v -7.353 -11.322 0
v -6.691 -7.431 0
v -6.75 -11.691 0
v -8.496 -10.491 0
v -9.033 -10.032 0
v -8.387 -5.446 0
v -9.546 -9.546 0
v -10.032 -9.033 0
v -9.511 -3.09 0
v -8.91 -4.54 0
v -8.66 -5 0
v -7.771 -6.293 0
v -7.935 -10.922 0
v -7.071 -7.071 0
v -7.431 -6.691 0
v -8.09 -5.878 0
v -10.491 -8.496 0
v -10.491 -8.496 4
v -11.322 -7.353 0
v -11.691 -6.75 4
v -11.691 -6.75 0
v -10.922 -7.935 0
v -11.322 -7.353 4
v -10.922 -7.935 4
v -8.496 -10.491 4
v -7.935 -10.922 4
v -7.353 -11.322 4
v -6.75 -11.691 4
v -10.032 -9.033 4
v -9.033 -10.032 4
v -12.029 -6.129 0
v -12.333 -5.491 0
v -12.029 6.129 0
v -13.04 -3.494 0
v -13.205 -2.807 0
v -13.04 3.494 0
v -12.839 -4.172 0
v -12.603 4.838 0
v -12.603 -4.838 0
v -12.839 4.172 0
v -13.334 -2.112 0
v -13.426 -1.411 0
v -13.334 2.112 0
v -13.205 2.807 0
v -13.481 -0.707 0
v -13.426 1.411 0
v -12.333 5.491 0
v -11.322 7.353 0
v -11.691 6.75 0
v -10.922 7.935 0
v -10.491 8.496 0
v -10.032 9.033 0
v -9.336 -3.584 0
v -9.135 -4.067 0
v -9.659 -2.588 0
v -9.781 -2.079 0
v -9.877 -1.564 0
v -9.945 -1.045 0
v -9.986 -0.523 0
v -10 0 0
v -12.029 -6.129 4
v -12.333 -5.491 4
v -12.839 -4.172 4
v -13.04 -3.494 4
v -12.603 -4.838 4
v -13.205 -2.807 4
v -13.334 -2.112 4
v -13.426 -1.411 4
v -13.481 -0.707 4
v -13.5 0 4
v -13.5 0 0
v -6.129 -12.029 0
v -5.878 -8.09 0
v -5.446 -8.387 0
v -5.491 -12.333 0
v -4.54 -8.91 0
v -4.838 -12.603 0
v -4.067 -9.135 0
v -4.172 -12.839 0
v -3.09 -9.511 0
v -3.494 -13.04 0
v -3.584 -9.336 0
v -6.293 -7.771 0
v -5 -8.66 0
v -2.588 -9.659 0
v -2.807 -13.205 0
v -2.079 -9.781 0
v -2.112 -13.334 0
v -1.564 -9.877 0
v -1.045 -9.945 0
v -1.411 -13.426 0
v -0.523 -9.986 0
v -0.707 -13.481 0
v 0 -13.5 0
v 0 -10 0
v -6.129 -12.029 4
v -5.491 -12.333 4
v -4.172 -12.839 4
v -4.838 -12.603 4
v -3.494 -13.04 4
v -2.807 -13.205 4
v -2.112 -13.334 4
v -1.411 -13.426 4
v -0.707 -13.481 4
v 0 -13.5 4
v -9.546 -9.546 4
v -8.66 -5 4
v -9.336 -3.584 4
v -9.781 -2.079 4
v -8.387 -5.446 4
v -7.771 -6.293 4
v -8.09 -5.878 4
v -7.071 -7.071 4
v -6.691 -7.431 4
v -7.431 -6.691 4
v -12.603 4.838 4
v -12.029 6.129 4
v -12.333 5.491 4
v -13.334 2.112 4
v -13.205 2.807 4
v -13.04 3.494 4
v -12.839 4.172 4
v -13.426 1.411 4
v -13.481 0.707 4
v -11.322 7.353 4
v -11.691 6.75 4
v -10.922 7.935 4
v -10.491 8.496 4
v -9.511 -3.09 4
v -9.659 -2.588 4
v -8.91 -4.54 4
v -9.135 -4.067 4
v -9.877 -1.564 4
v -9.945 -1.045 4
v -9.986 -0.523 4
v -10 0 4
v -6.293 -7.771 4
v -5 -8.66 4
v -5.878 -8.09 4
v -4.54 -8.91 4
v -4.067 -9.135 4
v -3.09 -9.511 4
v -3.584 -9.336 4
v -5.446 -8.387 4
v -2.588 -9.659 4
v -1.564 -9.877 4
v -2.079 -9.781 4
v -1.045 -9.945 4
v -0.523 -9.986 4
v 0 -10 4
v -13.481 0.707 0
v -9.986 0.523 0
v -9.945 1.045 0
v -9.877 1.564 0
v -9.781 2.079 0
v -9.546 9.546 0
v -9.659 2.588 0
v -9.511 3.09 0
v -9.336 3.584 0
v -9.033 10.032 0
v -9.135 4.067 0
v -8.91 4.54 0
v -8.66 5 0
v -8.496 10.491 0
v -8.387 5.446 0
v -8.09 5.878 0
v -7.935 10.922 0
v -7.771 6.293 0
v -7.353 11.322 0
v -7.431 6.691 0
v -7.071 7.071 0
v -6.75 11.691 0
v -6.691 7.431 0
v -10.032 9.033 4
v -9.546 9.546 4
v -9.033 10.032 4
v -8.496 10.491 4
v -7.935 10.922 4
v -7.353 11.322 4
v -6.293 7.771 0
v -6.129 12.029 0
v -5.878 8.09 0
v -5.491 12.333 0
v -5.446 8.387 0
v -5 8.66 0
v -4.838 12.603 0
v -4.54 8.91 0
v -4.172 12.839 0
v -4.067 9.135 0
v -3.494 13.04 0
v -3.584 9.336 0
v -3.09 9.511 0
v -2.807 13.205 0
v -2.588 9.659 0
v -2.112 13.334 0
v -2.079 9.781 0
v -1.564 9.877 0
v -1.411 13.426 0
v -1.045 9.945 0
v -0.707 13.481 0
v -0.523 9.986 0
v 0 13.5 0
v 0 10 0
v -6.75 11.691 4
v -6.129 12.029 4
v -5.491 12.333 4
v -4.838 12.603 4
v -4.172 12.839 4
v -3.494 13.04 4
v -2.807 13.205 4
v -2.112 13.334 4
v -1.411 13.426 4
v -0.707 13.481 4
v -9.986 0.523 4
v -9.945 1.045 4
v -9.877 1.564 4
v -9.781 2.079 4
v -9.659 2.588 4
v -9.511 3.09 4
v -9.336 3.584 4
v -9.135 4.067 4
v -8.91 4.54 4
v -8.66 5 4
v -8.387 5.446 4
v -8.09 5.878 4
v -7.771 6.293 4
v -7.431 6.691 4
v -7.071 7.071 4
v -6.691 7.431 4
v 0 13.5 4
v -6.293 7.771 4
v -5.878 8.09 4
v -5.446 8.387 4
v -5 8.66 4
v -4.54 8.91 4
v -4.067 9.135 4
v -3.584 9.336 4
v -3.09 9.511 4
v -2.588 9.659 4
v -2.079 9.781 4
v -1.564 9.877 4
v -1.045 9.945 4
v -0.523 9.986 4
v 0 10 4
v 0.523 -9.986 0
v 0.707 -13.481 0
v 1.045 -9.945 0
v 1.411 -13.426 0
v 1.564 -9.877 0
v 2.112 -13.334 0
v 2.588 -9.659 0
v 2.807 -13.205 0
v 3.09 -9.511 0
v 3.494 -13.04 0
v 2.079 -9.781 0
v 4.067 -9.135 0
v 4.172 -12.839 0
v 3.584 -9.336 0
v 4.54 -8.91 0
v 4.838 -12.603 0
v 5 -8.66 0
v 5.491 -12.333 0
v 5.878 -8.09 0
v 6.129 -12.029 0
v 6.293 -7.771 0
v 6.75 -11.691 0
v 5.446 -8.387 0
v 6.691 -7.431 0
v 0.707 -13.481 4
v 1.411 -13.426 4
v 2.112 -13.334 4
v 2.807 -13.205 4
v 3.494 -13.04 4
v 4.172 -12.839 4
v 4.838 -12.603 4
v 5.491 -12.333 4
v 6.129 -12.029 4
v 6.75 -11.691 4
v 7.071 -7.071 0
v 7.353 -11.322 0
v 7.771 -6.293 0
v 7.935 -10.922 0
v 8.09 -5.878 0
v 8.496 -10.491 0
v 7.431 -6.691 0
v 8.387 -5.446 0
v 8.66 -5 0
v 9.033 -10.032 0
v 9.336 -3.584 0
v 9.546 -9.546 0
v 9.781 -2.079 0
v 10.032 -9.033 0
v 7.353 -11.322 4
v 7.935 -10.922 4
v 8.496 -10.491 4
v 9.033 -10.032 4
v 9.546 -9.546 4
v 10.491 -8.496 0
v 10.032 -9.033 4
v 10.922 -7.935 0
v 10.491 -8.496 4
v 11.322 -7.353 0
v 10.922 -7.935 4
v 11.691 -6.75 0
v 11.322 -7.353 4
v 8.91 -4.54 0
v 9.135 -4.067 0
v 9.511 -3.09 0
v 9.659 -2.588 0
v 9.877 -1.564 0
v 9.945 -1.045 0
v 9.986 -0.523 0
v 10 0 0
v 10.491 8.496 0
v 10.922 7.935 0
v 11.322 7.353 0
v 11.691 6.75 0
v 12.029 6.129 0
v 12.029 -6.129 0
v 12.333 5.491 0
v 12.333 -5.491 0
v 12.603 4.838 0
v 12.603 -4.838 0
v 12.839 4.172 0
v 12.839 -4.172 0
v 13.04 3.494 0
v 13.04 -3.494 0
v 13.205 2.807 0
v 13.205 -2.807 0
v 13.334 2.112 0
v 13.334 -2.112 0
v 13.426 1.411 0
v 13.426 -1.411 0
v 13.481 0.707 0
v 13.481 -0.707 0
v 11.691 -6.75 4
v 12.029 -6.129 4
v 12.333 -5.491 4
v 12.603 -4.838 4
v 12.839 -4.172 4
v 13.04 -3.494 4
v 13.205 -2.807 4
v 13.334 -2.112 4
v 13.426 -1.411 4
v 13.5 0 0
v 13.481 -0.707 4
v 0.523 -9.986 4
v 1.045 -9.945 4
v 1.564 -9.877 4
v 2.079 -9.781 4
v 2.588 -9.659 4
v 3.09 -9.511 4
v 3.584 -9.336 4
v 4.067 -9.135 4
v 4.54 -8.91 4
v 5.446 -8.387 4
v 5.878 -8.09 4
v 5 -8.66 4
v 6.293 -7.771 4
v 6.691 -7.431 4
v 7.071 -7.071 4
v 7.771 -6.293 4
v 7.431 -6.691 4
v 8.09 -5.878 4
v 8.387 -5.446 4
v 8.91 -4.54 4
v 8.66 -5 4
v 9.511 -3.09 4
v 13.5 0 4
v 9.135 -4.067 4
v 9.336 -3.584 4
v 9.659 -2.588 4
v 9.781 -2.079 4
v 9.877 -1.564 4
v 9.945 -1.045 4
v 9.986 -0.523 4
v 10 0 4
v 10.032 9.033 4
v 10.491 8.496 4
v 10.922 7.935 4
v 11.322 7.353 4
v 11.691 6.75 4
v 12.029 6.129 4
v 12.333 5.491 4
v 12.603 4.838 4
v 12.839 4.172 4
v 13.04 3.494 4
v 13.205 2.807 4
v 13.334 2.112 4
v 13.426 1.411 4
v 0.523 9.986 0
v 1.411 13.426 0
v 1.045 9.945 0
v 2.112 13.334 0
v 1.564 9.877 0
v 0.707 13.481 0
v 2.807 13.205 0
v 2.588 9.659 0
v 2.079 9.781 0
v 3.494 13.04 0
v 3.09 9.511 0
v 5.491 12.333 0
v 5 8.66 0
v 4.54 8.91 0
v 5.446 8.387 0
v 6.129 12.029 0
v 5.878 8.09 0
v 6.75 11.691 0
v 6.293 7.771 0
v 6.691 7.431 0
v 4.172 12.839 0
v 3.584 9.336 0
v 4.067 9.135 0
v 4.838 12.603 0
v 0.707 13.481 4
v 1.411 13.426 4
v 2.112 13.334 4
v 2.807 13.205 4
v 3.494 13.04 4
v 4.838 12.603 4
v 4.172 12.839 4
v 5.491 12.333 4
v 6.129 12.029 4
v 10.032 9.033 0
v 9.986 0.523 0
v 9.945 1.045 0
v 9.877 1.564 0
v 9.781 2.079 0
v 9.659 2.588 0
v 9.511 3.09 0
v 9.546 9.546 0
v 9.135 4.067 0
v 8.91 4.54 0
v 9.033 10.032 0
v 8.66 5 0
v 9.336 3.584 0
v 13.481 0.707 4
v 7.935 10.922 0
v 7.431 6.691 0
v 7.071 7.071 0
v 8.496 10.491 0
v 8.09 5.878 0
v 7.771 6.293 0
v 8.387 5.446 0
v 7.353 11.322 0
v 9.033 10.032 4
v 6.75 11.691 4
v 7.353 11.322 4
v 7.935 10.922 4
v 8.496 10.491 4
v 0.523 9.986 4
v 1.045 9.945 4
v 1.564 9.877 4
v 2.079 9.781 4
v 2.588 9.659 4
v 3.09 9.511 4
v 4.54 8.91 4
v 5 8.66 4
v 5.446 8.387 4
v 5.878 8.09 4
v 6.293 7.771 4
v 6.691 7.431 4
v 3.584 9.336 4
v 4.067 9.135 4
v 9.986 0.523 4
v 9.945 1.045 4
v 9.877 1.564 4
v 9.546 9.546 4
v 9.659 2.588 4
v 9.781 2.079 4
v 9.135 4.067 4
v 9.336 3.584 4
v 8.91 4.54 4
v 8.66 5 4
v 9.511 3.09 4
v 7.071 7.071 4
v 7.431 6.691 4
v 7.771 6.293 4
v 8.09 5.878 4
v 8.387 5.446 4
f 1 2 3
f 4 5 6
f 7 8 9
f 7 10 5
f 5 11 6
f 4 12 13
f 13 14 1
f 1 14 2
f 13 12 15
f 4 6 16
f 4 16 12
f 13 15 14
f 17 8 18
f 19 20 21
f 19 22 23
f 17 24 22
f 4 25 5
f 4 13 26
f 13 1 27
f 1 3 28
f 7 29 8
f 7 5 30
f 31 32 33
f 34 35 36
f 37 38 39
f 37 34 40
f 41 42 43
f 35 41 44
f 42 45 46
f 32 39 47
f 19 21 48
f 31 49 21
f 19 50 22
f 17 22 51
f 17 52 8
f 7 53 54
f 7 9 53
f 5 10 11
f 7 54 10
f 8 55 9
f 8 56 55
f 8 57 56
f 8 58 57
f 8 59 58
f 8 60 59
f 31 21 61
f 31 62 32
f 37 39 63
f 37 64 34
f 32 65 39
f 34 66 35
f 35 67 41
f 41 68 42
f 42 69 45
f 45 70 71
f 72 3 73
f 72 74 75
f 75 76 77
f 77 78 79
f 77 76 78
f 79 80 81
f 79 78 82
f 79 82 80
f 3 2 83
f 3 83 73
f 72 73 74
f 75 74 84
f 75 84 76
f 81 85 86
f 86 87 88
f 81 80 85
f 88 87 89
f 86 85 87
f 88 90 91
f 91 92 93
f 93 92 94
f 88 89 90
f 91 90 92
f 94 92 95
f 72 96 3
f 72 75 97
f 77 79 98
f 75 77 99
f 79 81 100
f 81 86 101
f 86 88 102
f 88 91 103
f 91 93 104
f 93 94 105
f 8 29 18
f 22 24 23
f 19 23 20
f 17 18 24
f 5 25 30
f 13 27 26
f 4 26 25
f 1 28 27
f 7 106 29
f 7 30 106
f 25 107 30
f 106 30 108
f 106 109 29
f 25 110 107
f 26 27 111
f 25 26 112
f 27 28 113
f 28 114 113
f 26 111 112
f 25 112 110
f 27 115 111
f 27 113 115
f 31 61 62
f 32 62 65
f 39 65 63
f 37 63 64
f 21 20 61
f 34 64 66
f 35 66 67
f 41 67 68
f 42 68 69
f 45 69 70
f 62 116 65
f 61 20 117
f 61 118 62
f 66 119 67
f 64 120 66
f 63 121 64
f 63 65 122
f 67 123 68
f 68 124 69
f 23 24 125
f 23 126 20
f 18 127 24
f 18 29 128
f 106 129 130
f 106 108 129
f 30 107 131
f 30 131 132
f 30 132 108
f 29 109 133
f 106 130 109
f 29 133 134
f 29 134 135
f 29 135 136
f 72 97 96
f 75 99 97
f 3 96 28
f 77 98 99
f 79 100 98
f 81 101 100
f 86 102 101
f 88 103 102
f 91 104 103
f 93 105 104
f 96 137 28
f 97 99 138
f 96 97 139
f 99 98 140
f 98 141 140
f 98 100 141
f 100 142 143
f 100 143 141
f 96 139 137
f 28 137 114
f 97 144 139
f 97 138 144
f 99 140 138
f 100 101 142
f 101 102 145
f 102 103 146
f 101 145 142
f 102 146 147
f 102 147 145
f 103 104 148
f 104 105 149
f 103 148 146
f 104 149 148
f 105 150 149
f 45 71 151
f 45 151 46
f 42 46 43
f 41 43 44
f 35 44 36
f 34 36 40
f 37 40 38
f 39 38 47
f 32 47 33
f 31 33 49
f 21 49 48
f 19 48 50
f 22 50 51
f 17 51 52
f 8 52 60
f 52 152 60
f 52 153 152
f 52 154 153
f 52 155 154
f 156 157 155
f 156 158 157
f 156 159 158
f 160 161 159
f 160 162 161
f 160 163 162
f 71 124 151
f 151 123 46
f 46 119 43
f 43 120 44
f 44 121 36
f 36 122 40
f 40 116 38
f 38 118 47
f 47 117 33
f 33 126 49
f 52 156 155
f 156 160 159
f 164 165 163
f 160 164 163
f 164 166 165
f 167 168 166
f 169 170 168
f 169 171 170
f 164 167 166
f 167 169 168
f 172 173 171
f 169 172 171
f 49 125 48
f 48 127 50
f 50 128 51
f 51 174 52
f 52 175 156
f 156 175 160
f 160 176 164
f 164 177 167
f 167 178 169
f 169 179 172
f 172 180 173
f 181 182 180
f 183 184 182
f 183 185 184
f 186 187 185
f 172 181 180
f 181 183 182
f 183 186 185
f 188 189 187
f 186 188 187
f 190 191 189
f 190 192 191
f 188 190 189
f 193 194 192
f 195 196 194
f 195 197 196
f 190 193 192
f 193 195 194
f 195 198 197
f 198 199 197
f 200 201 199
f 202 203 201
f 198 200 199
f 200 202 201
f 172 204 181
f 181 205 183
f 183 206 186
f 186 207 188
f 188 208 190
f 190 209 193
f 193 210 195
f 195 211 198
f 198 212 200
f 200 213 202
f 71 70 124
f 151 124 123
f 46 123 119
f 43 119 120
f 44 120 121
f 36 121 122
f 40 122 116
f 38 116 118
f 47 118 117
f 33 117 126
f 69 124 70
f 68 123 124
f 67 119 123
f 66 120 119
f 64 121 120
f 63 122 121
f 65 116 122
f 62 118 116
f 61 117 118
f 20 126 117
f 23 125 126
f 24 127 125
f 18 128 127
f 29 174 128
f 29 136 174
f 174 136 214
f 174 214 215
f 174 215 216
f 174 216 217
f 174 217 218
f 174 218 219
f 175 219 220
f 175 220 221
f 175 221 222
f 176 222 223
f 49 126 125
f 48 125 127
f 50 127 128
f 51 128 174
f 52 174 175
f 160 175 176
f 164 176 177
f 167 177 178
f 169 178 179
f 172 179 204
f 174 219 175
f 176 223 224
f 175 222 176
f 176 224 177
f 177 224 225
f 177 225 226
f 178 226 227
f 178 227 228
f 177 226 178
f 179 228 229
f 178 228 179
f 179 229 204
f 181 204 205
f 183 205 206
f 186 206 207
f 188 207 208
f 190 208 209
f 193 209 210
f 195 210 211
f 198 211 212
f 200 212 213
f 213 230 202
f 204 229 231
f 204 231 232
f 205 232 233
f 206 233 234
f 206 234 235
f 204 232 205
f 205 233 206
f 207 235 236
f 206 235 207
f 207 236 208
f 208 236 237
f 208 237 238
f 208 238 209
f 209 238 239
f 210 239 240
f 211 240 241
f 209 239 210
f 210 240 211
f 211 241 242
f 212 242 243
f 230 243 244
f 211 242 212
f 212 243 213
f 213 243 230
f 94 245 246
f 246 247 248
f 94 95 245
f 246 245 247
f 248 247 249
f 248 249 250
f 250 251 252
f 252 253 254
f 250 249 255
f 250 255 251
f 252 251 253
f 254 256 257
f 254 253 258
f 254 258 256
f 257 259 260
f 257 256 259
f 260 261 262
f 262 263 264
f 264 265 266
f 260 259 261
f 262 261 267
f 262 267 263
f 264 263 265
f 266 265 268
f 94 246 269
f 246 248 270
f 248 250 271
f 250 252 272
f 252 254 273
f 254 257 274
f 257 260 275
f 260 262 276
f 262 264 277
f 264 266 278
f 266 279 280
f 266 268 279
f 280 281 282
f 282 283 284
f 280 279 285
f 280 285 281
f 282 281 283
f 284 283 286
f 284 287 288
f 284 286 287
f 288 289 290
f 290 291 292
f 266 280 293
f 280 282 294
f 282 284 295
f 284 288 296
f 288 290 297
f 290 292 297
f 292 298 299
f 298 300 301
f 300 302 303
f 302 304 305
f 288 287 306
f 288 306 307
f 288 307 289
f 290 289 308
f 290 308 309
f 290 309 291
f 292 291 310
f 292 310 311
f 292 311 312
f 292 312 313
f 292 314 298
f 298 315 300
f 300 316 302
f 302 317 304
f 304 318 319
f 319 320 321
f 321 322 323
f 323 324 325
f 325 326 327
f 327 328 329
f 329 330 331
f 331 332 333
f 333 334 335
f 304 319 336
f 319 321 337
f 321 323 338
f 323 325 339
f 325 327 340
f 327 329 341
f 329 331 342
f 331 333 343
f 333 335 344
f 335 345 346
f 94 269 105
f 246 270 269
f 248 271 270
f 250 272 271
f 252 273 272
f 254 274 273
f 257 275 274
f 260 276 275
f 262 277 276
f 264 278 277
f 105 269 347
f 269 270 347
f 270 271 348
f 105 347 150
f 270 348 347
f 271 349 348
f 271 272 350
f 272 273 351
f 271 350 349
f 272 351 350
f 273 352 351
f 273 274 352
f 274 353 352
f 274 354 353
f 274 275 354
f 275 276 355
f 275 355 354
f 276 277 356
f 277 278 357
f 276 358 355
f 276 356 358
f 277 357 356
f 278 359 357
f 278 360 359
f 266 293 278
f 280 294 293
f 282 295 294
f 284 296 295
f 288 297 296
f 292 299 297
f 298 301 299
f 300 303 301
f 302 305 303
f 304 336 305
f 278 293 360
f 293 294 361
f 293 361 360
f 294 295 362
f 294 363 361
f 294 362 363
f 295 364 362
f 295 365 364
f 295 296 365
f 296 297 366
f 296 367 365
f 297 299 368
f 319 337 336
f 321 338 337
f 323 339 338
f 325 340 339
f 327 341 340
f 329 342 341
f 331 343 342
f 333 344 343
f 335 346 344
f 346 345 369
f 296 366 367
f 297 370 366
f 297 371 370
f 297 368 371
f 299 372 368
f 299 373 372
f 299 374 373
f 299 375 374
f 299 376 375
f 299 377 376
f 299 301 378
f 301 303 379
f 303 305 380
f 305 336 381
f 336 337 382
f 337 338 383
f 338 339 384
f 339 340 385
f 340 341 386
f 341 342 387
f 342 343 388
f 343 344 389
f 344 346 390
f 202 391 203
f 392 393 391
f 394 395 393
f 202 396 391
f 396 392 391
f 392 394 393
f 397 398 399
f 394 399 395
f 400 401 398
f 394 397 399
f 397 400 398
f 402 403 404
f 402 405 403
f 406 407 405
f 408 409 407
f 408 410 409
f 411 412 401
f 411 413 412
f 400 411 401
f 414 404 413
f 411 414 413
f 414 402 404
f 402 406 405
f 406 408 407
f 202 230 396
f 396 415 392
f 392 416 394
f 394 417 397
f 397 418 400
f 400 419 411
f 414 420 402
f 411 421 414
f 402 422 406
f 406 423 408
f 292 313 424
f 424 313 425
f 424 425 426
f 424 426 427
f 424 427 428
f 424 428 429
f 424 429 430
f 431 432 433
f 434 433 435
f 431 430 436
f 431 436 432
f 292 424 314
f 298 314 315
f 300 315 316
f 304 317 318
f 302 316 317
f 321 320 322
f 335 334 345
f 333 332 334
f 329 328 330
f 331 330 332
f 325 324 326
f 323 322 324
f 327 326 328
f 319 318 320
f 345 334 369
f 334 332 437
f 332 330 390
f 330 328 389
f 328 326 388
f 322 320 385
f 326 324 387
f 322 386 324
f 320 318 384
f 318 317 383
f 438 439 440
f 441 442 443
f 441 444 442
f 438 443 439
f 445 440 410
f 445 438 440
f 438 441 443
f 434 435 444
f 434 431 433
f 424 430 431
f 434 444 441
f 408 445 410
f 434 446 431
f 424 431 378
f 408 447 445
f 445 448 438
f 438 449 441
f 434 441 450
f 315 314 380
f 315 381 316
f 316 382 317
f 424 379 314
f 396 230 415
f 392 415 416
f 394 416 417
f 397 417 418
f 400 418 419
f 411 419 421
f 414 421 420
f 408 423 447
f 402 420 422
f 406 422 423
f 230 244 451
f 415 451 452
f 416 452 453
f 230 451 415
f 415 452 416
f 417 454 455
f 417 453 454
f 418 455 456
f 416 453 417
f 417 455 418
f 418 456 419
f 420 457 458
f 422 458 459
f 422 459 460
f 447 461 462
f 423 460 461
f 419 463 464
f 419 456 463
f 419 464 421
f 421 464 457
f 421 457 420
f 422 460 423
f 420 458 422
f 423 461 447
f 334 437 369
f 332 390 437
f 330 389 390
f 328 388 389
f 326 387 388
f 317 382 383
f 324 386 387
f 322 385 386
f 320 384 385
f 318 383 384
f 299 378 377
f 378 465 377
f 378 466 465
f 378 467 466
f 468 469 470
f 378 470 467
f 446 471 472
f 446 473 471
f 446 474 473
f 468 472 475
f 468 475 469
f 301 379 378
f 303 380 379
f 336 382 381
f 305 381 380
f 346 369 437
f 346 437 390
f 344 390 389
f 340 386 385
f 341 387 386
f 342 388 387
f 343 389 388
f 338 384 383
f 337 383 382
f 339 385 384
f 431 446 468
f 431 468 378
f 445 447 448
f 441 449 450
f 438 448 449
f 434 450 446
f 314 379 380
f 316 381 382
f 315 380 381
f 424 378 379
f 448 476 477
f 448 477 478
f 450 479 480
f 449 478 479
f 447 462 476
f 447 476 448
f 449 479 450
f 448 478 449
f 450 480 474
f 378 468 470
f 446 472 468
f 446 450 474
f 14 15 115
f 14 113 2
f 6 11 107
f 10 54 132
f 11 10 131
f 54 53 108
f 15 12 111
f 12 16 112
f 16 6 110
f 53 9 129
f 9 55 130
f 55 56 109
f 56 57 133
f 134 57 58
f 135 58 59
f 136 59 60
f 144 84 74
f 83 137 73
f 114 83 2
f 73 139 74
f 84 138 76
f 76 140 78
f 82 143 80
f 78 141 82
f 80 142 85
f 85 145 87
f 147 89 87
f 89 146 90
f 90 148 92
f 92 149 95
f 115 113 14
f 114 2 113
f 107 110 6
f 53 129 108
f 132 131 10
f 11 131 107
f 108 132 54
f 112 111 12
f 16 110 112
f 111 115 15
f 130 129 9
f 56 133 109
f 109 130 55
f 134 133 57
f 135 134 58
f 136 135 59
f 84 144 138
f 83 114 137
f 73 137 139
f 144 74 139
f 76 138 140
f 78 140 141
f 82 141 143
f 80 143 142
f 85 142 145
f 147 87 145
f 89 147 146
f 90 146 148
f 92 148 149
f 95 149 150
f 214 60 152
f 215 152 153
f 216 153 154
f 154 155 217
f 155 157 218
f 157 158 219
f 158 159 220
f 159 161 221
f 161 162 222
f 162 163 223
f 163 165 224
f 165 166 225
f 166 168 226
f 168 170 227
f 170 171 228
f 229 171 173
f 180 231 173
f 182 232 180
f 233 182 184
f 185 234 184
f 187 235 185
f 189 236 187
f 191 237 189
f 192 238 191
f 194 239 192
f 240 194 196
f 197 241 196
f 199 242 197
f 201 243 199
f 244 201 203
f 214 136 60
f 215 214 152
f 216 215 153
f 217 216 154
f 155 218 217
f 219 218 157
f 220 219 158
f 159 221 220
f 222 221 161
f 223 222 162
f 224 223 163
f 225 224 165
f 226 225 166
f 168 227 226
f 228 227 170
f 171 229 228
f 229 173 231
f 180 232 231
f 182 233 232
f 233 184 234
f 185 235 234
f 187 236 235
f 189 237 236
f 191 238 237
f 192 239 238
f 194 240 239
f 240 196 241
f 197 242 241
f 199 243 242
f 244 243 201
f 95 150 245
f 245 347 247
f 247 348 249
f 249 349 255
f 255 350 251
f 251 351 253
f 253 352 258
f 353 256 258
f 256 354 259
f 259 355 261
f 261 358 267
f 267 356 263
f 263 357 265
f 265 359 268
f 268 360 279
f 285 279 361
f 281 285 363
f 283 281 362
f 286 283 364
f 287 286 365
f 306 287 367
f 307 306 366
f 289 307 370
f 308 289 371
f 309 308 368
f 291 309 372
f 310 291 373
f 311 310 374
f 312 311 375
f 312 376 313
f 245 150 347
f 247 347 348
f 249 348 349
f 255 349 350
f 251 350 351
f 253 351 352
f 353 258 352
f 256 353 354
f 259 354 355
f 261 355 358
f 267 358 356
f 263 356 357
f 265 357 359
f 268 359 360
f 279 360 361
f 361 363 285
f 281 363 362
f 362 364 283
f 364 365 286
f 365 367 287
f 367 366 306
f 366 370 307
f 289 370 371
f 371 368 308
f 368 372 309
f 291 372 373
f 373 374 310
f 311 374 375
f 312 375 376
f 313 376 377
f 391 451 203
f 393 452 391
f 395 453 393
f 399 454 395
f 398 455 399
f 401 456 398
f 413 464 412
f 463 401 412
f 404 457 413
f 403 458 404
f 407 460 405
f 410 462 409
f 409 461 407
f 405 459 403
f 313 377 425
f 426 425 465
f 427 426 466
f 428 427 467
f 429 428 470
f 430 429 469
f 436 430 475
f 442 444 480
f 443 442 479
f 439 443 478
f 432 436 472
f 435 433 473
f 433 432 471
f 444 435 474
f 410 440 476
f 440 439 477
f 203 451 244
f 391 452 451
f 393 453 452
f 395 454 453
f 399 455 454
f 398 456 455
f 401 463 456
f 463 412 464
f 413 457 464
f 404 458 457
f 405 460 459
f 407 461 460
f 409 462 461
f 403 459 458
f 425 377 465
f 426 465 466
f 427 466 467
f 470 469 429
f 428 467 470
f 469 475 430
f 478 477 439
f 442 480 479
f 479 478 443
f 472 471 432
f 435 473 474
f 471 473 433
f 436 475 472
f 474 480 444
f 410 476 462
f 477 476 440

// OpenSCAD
// file: C:/gh/oomlout_oobb_part_motor_gearbox_wave_drive_version_5/parts/oobb_part_motor_gearbox_wave_drive_version_5_12_to_1_reduction/compact_helpers.scad
// Reusable native geometry helpers.
function polar(r,a)=[r*cos(a),r*sin(a)];
function rotate_point(p,a)=[p[0]*cos(a)-p[1]*sin(a),p[0]*sin(a)+p[1]*cos(a)];
function profile_point(t)=let(
    s=sqrt(pow(pitch_radius,2)-pow(eccentricity*sin(cavity_count*t),2)),
    r=eccentricity*cos(cavity_count*t)+s,
    xi=atan2(eccentricity*cavity_count*sin(cavity_count*t),s),
    rr=roller_radius+profile_clearance)
    [r*cos(t)+rr*cos(t+xi),r*sin(t)+rr*sin(t+xi)];
function profile_points(upper=false)=[for(i=[0:cavity_count*profile_samples_per_cavity-1])
    rotate_point(profile_point(360*i/(cavity_count*profile_samples_per_cavity)),0)];
function roller_position(i,a,upper=false)=let(
    t=-a/roller_count+360*i/roller_count,
    rel=t-a-(upper?180:0),
    r=eccentricity*cos(rel)+sqrt(pow(pitch_radius,2)-pow(eccentricity*sin(rel),2))) polar(r,t);
module tube(ro,ri,h) { difference() { cylinder(r=ro,h=h); translate([0,0,-eps]) cylinder(r=ri,h=h+2*eps); } }
module screw_hole(size,h) { scale([1,1,h]) { if(size=="m2") oobb_hole_m2(); if(size=="m3") oobb_hole_m3(); if(size=="m6") oobb_hole_m6(); } }
module socket_recess(size,depth) {
    // OOBB socket head starts at the under-head plane and extends outward.
    scale([1,1,depth/(size=="m3"?3.2:2.2)]) {
        if(size=="m3") oobb_socket_m3(); else oobb_socket_m2();
    }
}
module at_mounts(points) { for(p=points) translate([p[0],p[1],0]) children(); }
module shaft_cut(h,fit=shaft_fit_clearance) {
    linear_extrude(h) intersection() {
        circle(r=input_shaft_diameter/2+fit);
        translate([-10,-10]) square([10+input_shaft_diameter/2-input_shaft_flat_depth+fit,20]);
    }
}
module rounded_rectangle_plate(size=[119,119,3],radius=1.5) {
    hull() for(x=[-1,1],y=[-1,1]) translate([x*(size[0]/2-radius),y*(size[1]/2-radius),0]) cylinder(r=radius,h=size[2]);
}
module grid_cuts(h) {
    // Actual OOBB grid centres: six units are centred on half-pitch offsets.
    for(i=[0:base_width-1],j=[0:base_height-1])
        let(x=(i-(base_width-1)/2)*oobb_grid_pitch,y=(j-(base_height-1)/2)*oobb_grid_pitch)
        if(sqrt(x*x+y*y)>housing_radius+3.5)
            translate([x,y,-eps]) screw_hole("m6",h+2*eps);
}
module wave_generator() {
    render(convexity=20) difference() {
        tube(wave_radius,12.6,wave_height);
        translate([0,0,wave_seat_z]) cylinder(r=13.5+bearing_seat_clearance,h=wave_height);
        translate([0,0,wave_height-wave_cap_depth]) cylinder(r=22.15,h=wave_cap_depth+eps);
        at_mounts(wave_mounts) {
            translate([0,0,-eps]) screw_hole("m3",wave_height+2*eps);
            translate([0,0,wave_nut_z]) scale([1,1,(wave_height-wave_cap_depth-wave_nut_z+eps)/2.7]) oobb_nut_m3();
        }
    }
}
module wave_cap() {
    render(convexity=20) difference() {
        tube(22,12.6,wave_cap_depth);
        at_mounts(wave_mounts) {
            translate([0,0,-eps]) screw_hole("m3",wave_cap_depth+2*eps);
            translate([0,0,wave_cap_depth-wave_head_recess]) socket_recess("m3",wave_head_recess+eps);
        }
    }
}
// file: C:/gh/oomlout_oobb_part_motor_gearbox_wave_drive_version_5/parts/oobb_part_motor_gearbox_wave_drive_version_5_12_to_1_reduction/oobb_hardware.scad
module oobb_rounded_rectangle_edges(size, radius, radius_top, radius_bottom) {
      rt=radius_top; rb=radius_bottom; depth=size[2]; n=16;
      lower=rb==0 ? [[radius,0]] :
        [for(i=[0:n]) let(a=-90+90*i/n) [radius-rb+rb*cos(a),rb+rb*sin(a)]];
      upper=rt==0 ? [[radius,depth]] :
        [for(i=[0:n]) let(a=90*i/n) [radius-rt+rt*cos(a),depth-rt+rt*sin(a)]];
      hull() for(x=[-size[0]/2+radius,size[0]/2-radius])
        for(y=[-size[1]/2+radius,size[1]/2-radius])
          translate([x,y,0]) rotate_extrude()
            polygon(concat([[0,0]],lower,upper,[[0,depth]]));
    }
// Generated from installed OOBB v5. All primitives use overhang=True.

module oobb_motor_plate_body() {


difference() {
	union() {
		translate(v = [0, 0, 0]) {
			rotate(a = [0, 0, 0]) {
				difference() {
					union() {
						oobb_rounded_rectangle_edges(radius = 1.5, radius_bottom = 1.5, radius_top = 1.5, size = [89.0, 89.0, 4.0]);
					}
					union();
				}
			}
		}
	}
	union();
}

}

module oobb_hole_m2() {


difference() {
	union() {
		cylinder(h = 1, r = 1.35);
	}
	union();
}

}

module oobb_hole_m3() {


difference() {
	union() {
		cylinder(h = 1, r = 1.8);
	}
	union();
}

}

module oobb_hole_m6() {


difference() {
	union() {
		cylinder(h = 1, r = 3.25);
	}
	union();
}

}

module oobb_nut_m2() {


difference() {
	union() {
		translate(v = [0, 0, 0]) {
			rotate(a = [0, 0, 0]) {
				difference() {
					union() {
						linear_extrude(height = 2.2) {
							polygon(points = [[2.4234, 0.0], [1.2117000000000002, 2.0987259635312085], [-1.2116999999999996, 2.0987259635312085], [-2.4234, 2.967809053053696e-16], [-1.211700000000001, -2.098725963531208], [1.2116999999999984, -2.0987259635312094]]);
						}
						translate(v = [-1.25, -2.75, -0.3]) {
							cube(size = [2.5, 5.5, 0.3]);
						}
						translate(v = [-1.25, -1.25, -0.6]) {
							cube(size = [2.5, 2.5, 0.3]);
						}
						translate(v = [-1.25, -2.75, 2.2]) {
							cube(size = [2.5, 5.5, 0.3]);
						}
						translate(v = [-1.25, -1.25, 2.5]) {
							cube(size = [2.5, 2.5, 0.3]);
						}
					}
					union();
				}
			}
		}
	}
	union();
}

}

module oobb_socket_m2() {


difference() {
	union() {
		translate(v = [0, 0, 0]) {
			rotate(a = [0, 0, 0]) {
				difference() {
					union() {
						cylinder(h = 2.2, r = 2.1);
						translate(v = [-1.25, -2.75, -0.3]) {
							cube(size = [2.5, 5.5, 0.3]);
						}
						translate(v = [-1.25, -1.25, -0.6]) {
							cube(size = [2.5, 2.5, 0.3]);
						}
					}
					union();
				}
			}
		}
	}
	union();
}

}

module oobb_nut_m3() {


difference() {
	union() {
		translate(v = [0, 0, 0]) {
			rotate(a = [0, 0, 0]) {
				difference() {
					union() {
						linear_extrude(height = 2.7) {
							polygon(points = [[3.4619999999999997, 0.0], [1.7310000000000003, 2.9981799479017264], [-1.7309999999999992, 2.9981799479017264], [-3.4619999999999997, 4.2397272186481365e-16], [-1.7310000000000014, -2.998179947901726], [1.7309999999999977, -2.9981799479017277]]);
						}
						translate(v = [-1.75, -3.25, -0.3]) {
							cube(size = [3.5, 6.5, 0.3]);
						}
						translate(v = [-1.75, -1.75, -0.6]) {
							cube(size = [3.5, 3.5, 0.3]);
						}
						translate(v = [-1.75, -3.25, 2.7]) {
							cube(size = [3.5, 6.5, 0.3]);
						}
						translate(v = [-1.75, -1.75, 3.0]) {
							cube(size = [3.5, 3.5, 0.3]);
						}
					}
					union();
				}
			}
		}
	}
	union();
}

}

module oobb_socket_m3() {


difference() {
	union() {
		translate(v = [0, 0, 0]) {
			rotate(a = [0, 0, 0]) {
				difference() {
					union() {
						cylinder(h = 3.2, r = 3.0);
						translate(v = [-1.75, -3.25, -0.3]) {
							cube(size = [3.5, 6.5, 0.3]);
						}
						translate(v = [-1.75, -1.75, -0.6]) {
							cube(size = [3.5, 3.5, 0.3]);
						}
					}
					union();
				}
			}
		}
	}
	union();
}

}

module oobb_nut_m6() {


difference() {
	union() {
		translate(v = [0, 0, 0]) {
			rotate(a = [0, 0, 0]) {
				difference() {
					union() {
						linear_extrude(height = 5.2) {
							polygon(points = [[5.914249999999999, 0.0], [2.957125, 5.1218907443321156], [-2.9571249999999982, 5.1218907443321156], [-5.914249999999999, 7.242867331857232e-16], [-2.9571250000000022, -5.121890744332115], [2.9571249999999956, -5.121890744332118]]);
						}
						translate(v = [-2.875, -5.0, -0.3]) {
							cube(size = [5.75, 10, 0.3]);
						}
						translate(v = [-2.875, -2.875, -0.6]) {
							cube(size = [5.75, 5.75, 0.3]);
						}
						translate(v = [-2.875, -5.0, 5.2]) {
							cube(size = [5.75, 10, 0.3]);
						}
						translate(v = [-2.875, -2.875, 5.5]) {
							cube(size = [5.75, 5.75, 0.3]);
						}
					}
					union();
				}
			}
		}
	}
	union();
}

}
// file: C:/gh/oomlout_oobb_part_motor_gearbox_wave_drive_version_5/parts/oobb_part_motor_gearbox_wave_drive_version_5_12_to_1_reduction/parameters.scad
// Generated by working_scad.py. Edit the Python recipe to persist changes.
style = "version_5";
reduction = 12;
bearing_output = "6810";
bearing_wave = "6704";
roller_diameter = 7.0;
roller_bore_diameter = 3.2;
roller_length = 12.0;
roller_material = "nylon";
roller_bank_count = 1;
motor_plate_depth = 4.0;
motor_body_depth = 40.0;
motor_shaft_length = 24.0;
motor_hole_pitch = 31.0;
motor_thread_depth = 6.0;
motor_pilot_diameter = 22.0;
motor_pilot_height = 2.0;
output_holder_wall = 7.0;
max_screw_length = 35.0;
eccentricity = 0.75;
wave_radius = 23.25;
profile_clearance = 0.15;
roller_slot_clearance = 0.3;
roller_end_clearance = 0.3;
cage_wall = 4.0;
cage_plate_depth = 3.0;
bearing_seat_clearance = 0.1;
journal_clearance = 0.05;
bearing_axial_clearance = 0.2;
output_plate_diameter = 65.0;
output_plate_depth = 6.0;
output_grid_pitch = 15.0;
output_face_clearance = 0.3;
output_socket_recess = 4.0;
output_screw_length = 16;
output_nut_depth = 5.2;
output_nut_height = 5.0;
motor_shaft_end_clearance = 0.5;
base_width = 6;
base_height = 6;
oobb_grid_pitch = 15.0;
oobb_size_allowance = 1.0;
base_edge_radius = 1.5;
housing_flange_corner_radius = 1.5;
housing_screw_pitch_radius = 35.5;
housing_screw_count = 6;
input_shaft_diameter = 5.0;
input_shaft_flat_depth = 0.5;
shaft_fit_clearance = 0.1;
cage_screw_count = 4;
profile_samples_per_cavity = 100;
circle_fragments = 120;
overhang = true;
run_scad = true;
run_solidcraft = false;
generate_stl = true;
generate_previews = true;
generate_renders = true;
validate_geometry = true;
package_outputs = true;
render_threads = 8;
variant = "default";
// main file
include <C:/gh/oomlout_oobb_part_motor_gearbox_wave_drive_version_5/parts/oobb_part_motor_gearbox_wave_drive_version_5_12_to_1_reduction/parameters.scad>
include <C:/gh/oomlout_oobb_part_motor_gearbox_wave_drive_version_5/parts/oobb_part_motor_gearbox_wave_drive_version_5_12_to_1_reduction/oobb_hardware.scad>
include <C:/gh/oomlout_oobb_part_motor_gearbox_wave_drive_version_5/parts/oobb_part_motor_gearbox_wave_drive_version_5_12_to_1_reduction/geometry.scad>
tube(13.5,10.0,4.0);
